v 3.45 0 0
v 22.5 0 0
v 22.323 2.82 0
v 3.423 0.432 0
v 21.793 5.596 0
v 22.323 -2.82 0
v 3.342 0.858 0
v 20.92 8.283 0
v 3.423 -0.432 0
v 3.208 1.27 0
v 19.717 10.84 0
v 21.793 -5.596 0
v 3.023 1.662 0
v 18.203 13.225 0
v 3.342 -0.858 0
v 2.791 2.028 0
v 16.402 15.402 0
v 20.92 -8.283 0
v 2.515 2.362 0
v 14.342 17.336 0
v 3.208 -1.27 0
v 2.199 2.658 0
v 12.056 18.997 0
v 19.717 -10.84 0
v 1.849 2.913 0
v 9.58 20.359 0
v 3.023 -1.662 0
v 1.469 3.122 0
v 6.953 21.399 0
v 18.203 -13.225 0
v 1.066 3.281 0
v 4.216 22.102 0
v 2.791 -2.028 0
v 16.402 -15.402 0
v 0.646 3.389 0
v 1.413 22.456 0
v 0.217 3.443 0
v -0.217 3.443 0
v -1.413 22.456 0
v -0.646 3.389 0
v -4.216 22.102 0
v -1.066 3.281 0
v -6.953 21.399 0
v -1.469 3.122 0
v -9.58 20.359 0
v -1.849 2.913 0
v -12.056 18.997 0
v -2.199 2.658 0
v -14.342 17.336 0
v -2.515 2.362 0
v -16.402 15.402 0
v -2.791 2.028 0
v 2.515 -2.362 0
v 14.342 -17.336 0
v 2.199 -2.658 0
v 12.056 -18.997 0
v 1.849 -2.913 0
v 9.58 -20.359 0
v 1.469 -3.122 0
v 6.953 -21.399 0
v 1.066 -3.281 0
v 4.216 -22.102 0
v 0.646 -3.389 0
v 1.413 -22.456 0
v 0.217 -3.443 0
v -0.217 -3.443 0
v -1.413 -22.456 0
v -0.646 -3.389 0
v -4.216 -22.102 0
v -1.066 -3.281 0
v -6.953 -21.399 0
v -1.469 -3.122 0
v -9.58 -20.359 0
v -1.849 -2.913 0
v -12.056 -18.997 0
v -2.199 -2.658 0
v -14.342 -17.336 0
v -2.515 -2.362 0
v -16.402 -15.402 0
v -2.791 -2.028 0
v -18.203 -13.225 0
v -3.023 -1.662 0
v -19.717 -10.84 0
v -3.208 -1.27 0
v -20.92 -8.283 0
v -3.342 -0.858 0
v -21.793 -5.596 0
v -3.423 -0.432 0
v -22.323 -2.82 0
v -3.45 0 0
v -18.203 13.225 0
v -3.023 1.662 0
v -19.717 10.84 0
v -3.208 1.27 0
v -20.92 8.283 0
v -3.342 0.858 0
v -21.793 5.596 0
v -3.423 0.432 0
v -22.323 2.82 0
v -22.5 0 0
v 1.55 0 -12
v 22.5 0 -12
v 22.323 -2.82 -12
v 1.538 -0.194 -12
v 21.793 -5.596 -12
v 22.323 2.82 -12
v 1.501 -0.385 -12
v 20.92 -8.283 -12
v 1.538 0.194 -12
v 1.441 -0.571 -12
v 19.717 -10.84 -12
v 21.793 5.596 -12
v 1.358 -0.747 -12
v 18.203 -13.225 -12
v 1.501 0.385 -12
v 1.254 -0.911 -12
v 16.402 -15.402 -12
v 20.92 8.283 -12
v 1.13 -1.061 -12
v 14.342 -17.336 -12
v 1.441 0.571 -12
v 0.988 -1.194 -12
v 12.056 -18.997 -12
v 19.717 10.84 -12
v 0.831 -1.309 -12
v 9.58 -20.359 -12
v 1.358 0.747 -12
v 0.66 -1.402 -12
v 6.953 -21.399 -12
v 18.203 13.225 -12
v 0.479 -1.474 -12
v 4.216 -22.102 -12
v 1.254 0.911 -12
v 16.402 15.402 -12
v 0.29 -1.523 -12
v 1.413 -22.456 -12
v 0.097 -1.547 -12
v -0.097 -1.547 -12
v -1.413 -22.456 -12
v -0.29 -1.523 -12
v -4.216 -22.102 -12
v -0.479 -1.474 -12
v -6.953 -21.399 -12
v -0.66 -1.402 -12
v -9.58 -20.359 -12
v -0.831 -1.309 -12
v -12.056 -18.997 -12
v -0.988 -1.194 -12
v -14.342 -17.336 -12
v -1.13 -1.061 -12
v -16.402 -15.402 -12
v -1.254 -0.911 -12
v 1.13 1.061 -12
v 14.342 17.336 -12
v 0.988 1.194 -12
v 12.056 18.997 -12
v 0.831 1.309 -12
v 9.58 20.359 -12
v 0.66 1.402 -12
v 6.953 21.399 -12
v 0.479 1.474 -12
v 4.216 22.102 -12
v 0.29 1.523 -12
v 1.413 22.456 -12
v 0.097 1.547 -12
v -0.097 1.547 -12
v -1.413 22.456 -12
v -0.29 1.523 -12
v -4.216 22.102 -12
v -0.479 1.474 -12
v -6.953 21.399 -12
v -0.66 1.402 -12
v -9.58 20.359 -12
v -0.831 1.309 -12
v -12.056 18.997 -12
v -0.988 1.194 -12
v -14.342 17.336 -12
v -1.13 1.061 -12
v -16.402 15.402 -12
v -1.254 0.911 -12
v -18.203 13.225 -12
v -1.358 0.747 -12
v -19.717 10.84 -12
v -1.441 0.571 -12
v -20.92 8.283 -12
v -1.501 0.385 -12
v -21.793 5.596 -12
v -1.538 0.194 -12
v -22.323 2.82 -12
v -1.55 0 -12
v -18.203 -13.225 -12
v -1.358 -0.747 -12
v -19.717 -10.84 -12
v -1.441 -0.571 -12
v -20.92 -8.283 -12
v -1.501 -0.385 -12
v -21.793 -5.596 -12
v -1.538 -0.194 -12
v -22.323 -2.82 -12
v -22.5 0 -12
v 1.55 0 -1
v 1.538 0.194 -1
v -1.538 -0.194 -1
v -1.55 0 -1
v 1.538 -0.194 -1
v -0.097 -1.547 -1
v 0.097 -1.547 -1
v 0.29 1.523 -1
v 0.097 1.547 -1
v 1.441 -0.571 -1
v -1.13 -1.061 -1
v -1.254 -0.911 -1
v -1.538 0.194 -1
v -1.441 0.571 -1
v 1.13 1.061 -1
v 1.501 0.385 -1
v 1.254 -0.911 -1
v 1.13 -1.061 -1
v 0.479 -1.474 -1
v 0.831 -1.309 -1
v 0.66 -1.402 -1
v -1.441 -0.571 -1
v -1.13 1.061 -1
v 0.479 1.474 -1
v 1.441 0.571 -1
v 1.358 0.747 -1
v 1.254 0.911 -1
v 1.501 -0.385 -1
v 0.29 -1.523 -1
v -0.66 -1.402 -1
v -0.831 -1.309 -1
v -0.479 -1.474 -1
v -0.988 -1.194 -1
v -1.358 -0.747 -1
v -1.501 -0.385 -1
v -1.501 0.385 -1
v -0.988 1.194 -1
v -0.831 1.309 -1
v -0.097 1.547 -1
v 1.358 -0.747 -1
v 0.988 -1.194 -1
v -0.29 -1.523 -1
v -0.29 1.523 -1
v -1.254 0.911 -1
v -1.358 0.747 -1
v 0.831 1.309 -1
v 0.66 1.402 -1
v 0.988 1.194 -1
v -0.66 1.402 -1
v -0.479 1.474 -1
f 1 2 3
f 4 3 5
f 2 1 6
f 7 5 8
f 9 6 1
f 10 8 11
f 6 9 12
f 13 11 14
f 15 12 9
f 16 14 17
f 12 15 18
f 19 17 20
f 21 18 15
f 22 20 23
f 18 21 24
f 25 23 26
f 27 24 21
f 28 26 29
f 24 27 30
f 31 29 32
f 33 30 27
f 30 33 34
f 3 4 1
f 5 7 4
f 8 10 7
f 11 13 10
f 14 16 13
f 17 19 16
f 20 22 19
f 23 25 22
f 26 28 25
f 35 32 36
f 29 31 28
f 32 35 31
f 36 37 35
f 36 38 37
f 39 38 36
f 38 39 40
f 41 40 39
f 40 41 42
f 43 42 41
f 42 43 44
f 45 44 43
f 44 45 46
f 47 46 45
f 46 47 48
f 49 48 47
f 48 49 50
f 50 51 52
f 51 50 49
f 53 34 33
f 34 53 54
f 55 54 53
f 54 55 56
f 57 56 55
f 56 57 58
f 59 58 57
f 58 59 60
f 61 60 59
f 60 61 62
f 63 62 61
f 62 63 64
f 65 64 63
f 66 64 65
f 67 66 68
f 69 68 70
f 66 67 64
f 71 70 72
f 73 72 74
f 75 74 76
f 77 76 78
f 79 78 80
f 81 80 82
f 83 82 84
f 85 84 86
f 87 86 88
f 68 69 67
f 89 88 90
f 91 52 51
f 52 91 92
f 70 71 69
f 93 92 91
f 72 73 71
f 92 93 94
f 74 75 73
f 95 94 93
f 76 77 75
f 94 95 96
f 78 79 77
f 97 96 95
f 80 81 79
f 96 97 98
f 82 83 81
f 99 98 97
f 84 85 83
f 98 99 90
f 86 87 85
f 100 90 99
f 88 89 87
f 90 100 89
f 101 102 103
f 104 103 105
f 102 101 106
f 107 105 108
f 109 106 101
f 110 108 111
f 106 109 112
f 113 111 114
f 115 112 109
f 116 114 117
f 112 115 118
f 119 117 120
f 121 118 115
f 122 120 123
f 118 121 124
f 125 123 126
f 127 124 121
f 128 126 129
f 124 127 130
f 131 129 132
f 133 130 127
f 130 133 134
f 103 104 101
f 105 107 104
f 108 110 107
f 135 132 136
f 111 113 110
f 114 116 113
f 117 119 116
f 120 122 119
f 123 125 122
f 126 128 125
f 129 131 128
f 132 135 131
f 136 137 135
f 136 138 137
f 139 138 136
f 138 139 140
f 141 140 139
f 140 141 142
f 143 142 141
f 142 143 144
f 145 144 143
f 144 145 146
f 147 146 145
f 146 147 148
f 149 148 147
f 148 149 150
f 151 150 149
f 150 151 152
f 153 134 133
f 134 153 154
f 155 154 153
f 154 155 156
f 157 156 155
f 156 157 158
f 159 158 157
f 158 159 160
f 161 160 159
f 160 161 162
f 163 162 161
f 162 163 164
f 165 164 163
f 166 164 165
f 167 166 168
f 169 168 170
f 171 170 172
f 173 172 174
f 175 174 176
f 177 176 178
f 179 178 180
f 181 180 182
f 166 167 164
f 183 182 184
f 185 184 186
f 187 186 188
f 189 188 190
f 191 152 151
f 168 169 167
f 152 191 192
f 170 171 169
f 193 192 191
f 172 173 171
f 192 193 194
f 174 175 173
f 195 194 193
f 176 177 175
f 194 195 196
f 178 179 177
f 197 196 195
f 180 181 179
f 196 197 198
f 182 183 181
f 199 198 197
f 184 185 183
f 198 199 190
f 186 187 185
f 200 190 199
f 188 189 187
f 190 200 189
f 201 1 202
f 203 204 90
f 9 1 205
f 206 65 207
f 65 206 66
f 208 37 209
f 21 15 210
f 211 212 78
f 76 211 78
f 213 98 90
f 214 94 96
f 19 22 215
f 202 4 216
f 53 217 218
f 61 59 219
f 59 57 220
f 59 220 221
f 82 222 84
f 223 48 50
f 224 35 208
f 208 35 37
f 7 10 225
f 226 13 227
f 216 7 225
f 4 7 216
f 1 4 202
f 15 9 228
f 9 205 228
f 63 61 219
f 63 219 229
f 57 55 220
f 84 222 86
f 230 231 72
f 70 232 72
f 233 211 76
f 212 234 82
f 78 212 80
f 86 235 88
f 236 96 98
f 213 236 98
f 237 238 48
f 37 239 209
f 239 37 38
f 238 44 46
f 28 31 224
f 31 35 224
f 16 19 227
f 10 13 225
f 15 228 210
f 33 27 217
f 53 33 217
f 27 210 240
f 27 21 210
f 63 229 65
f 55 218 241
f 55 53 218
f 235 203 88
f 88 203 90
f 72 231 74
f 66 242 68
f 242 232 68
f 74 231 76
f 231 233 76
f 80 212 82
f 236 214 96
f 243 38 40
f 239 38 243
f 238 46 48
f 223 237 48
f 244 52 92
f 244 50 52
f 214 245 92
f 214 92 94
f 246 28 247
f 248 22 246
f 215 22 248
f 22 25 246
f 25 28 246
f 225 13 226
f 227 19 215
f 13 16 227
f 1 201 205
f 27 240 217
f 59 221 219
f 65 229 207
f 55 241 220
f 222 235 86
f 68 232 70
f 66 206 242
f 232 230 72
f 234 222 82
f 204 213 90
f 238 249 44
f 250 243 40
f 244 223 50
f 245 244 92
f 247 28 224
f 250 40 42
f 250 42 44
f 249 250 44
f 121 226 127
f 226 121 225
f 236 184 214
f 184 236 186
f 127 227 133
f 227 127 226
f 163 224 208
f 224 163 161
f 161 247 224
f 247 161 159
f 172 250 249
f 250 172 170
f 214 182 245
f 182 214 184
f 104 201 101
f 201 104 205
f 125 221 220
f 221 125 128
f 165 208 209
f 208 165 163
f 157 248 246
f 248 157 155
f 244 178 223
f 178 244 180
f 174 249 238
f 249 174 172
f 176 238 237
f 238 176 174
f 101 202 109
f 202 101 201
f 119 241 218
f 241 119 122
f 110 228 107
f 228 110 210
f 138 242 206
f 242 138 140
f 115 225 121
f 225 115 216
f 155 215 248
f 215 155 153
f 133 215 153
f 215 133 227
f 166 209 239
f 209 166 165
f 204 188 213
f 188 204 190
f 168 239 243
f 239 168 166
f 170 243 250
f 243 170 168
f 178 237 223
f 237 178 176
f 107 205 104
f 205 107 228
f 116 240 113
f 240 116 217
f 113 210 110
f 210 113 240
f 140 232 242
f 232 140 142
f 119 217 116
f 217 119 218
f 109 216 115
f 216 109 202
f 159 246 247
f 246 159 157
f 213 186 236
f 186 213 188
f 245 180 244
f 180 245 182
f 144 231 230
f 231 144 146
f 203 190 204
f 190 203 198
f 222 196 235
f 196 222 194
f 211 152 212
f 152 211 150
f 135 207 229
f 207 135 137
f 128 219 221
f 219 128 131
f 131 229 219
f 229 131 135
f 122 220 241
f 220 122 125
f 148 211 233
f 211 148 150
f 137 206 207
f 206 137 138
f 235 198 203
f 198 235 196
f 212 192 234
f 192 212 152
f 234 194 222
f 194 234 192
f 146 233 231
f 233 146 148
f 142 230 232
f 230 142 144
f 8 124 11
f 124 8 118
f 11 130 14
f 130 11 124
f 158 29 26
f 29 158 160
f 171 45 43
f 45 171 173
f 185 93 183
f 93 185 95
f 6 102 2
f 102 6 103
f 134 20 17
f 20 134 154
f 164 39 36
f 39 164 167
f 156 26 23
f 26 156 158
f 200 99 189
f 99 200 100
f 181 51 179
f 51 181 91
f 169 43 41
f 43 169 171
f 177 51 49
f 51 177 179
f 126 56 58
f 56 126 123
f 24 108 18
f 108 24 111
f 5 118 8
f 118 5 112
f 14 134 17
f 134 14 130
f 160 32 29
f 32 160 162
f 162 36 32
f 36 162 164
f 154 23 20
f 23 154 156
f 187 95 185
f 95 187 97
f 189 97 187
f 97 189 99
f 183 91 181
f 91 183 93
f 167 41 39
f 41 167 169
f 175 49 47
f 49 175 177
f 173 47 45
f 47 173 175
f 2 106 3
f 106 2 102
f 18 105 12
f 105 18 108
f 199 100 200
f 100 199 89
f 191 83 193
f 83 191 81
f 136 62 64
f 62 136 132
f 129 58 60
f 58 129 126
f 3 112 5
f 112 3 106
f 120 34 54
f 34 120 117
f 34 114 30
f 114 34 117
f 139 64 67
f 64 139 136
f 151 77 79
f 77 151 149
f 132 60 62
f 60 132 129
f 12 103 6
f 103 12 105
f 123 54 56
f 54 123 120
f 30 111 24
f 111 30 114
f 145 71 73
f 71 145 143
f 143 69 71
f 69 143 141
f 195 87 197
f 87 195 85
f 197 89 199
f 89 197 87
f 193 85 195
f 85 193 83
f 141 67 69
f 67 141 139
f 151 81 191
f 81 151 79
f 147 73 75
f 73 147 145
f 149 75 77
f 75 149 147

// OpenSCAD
$fn = 50;


difference() {
	union() {
		translate(v = [0, 0, -12.0000000000]) {
			cylinder(h = 12, r = 22.5000000000);
		}
	}
	union() {
		translate(v = [0, 0, 0]) {
			rotate(a = [0, 0, 0]) {
				difference() {
					union() {
						translate(v = [0, 0, -12.0000000000]) {
							cylinder(h = 12, r = 1.2500000000);
						}
						translate(v = [0, 0, -1.0000000000]) {
							cylinder(h = 1.0000000000, r1 = 1.5500000000, r2 = 3.4500000000);
						}
						translate(v = [0, 0, -12.0000000000]) {
							cylinder(h = 12, r = 1.5500000000);
						}
						translate(v = [0, 0, -12.0000000000]) {
							cylinder(h = 12, r = 1.2500000000);
						}
					}
					union();
				}
			}
		}
	}
}
